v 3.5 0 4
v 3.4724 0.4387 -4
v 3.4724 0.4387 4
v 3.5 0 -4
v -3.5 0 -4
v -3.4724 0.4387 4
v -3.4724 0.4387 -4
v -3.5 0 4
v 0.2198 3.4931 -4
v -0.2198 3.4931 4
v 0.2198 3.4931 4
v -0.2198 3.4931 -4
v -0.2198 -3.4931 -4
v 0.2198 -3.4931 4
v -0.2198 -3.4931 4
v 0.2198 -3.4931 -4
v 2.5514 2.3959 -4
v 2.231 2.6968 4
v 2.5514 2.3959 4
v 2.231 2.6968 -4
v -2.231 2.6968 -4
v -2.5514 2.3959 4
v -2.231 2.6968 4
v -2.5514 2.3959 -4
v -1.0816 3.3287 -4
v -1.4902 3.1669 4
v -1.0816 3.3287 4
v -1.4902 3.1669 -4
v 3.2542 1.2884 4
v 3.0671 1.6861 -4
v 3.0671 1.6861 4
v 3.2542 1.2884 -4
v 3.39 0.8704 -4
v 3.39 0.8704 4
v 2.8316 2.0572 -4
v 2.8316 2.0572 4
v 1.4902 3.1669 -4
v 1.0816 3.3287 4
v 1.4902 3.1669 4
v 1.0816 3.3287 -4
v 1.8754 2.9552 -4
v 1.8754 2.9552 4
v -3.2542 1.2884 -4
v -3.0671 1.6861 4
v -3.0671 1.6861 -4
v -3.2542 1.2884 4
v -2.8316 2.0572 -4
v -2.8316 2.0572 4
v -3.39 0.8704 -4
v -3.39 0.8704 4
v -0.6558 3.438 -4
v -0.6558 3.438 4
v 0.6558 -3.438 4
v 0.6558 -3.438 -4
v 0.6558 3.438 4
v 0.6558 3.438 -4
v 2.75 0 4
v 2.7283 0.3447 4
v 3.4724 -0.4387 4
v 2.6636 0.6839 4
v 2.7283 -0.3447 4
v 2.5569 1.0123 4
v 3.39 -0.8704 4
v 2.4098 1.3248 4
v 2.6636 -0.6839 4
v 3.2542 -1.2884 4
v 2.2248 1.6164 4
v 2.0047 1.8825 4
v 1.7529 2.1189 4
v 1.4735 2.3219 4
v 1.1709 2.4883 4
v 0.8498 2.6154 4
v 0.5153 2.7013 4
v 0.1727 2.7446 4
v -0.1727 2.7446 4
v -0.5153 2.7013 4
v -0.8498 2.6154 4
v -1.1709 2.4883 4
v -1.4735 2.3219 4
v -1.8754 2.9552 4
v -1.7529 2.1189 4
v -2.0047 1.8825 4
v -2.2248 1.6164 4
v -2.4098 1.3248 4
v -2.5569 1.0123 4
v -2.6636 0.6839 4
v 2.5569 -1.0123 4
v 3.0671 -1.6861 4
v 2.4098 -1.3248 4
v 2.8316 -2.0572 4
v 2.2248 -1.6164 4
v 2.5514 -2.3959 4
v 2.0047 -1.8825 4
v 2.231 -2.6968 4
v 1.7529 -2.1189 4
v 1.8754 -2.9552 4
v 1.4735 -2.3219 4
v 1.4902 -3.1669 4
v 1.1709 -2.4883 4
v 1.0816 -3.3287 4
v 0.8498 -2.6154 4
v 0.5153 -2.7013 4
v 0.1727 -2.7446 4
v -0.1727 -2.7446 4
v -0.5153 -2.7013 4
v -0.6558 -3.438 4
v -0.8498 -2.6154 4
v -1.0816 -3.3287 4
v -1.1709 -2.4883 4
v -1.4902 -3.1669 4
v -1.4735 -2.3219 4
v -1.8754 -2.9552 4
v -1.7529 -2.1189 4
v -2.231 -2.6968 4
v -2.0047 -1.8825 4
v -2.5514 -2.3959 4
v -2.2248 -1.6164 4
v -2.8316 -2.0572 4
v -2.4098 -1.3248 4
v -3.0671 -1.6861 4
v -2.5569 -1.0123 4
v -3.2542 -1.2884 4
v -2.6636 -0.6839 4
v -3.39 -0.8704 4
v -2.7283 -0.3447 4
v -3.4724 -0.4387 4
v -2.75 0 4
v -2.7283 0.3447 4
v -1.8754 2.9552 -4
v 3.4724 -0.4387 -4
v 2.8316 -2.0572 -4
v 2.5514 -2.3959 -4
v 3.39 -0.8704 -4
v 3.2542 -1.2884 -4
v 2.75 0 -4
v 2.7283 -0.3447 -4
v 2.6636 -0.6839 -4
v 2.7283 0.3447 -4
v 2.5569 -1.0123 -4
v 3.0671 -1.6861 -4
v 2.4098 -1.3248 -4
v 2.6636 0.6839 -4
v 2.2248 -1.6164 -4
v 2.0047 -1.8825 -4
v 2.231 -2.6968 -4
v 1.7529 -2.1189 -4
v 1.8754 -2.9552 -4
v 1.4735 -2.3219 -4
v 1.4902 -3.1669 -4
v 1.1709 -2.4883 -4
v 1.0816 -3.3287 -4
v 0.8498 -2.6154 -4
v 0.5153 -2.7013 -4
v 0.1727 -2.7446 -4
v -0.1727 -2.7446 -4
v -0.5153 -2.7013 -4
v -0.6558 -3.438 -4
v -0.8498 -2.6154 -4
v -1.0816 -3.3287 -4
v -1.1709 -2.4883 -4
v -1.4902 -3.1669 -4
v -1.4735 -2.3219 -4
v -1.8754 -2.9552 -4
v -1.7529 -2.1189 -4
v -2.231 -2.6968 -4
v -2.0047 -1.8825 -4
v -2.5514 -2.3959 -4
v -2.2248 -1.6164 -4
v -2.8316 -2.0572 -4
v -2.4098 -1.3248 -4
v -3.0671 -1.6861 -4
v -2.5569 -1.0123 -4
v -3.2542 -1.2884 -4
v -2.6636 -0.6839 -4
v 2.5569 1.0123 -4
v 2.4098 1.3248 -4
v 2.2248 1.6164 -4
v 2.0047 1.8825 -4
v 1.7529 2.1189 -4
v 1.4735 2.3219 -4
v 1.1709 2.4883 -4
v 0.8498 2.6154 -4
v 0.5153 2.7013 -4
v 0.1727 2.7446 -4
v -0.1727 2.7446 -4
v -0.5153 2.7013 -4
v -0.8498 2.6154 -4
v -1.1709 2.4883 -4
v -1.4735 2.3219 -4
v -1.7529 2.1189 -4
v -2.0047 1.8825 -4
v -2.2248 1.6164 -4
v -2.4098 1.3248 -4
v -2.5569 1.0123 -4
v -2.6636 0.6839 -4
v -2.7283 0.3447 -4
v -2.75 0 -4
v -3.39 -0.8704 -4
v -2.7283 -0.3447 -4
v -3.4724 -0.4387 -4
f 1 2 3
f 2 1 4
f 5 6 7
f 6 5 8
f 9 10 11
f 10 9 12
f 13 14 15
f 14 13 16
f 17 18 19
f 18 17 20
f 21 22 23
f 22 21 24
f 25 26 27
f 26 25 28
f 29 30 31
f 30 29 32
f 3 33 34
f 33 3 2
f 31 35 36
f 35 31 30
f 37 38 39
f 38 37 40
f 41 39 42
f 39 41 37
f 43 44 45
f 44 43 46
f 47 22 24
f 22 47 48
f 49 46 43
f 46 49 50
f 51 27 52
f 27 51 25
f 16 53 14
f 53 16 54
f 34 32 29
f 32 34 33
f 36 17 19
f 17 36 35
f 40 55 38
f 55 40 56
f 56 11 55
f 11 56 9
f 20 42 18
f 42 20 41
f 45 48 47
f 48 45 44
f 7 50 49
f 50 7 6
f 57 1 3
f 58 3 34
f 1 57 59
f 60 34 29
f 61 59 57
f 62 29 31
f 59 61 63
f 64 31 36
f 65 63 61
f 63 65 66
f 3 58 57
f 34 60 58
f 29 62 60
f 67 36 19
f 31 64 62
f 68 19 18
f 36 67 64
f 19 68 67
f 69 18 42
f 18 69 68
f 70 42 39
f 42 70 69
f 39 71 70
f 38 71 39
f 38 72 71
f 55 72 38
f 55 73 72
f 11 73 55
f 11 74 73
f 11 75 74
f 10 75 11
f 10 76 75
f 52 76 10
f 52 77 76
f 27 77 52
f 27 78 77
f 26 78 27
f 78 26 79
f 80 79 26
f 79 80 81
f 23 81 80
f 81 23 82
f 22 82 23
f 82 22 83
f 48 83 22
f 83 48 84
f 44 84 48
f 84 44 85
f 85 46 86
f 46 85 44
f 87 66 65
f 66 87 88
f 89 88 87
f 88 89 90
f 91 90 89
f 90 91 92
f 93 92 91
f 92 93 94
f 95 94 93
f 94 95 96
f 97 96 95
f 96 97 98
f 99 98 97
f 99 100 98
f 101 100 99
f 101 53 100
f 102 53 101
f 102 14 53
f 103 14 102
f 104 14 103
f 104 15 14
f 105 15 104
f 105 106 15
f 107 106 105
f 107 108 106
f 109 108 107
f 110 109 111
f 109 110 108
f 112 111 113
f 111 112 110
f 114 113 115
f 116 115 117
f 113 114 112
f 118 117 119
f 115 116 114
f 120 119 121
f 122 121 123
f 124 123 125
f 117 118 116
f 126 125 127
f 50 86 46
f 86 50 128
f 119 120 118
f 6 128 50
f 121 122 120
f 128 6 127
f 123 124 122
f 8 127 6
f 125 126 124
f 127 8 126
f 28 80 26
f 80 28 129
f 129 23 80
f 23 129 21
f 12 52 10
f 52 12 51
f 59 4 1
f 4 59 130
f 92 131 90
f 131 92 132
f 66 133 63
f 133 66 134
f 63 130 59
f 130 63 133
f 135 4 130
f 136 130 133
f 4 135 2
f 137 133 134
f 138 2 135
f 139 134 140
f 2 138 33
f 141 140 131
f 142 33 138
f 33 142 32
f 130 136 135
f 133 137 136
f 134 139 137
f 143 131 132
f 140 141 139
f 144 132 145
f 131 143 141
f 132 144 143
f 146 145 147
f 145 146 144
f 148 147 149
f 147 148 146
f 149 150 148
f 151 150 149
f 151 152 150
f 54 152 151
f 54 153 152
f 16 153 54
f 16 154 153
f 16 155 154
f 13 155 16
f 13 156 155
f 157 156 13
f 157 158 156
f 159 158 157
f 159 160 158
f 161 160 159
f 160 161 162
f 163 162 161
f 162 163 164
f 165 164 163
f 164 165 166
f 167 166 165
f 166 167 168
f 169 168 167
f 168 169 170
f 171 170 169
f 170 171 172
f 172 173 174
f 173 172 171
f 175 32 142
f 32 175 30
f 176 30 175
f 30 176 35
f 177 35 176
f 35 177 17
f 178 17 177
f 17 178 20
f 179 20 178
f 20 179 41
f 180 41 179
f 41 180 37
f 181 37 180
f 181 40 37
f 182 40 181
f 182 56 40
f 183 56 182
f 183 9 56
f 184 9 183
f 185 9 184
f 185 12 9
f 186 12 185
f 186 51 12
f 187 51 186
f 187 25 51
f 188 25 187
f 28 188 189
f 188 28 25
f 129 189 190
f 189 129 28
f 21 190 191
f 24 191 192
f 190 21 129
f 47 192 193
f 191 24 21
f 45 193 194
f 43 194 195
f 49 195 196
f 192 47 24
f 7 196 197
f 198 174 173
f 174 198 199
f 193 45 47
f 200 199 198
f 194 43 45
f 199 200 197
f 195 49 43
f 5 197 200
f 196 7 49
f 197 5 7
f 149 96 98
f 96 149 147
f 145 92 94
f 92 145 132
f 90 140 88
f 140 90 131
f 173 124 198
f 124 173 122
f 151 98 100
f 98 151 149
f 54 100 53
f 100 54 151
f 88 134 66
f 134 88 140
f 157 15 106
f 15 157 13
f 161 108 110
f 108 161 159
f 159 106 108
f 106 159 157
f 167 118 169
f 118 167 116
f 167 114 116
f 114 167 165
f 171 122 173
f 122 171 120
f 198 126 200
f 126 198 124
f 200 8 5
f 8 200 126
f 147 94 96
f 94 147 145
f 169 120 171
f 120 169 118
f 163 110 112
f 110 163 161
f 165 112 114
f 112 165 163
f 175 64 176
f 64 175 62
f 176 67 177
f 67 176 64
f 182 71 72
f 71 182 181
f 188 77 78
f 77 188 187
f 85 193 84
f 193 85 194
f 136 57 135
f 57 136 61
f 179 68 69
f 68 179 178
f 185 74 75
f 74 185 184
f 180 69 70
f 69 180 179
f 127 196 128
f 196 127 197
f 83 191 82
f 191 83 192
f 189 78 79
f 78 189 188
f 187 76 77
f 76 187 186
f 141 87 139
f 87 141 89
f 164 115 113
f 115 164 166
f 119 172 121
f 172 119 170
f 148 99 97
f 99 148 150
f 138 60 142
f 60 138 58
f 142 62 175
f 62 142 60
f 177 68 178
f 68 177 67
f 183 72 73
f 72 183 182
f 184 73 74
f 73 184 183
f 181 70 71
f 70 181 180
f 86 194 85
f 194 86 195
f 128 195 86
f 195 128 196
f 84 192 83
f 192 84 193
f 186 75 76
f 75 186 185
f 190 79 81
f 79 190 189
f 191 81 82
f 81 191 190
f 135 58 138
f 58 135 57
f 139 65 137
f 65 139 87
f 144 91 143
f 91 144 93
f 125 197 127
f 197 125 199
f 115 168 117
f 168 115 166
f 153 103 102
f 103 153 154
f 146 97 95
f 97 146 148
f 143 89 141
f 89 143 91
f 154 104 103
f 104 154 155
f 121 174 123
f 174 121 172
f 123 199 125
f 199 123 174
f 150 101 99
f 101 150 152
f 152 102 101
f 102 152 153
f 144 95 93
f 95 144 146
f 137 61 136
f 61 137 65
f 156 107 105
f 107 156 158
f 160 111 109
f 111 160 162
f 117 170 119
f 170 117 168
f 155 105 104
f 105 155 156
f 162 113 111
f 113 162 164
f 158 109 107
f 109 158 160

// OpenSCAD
$fn = 50;


difference() {
	union() {
		translate(v = [0, 0, -4.0000000000]) {
			cylinder(h = 8, r = 3.5000000000);
		}
	}
	union() {
		translate(v = [0, 0, -100.0000000000]) {
			cylinder(h = 200, r = 2.7500000000);
		}
	}
}
